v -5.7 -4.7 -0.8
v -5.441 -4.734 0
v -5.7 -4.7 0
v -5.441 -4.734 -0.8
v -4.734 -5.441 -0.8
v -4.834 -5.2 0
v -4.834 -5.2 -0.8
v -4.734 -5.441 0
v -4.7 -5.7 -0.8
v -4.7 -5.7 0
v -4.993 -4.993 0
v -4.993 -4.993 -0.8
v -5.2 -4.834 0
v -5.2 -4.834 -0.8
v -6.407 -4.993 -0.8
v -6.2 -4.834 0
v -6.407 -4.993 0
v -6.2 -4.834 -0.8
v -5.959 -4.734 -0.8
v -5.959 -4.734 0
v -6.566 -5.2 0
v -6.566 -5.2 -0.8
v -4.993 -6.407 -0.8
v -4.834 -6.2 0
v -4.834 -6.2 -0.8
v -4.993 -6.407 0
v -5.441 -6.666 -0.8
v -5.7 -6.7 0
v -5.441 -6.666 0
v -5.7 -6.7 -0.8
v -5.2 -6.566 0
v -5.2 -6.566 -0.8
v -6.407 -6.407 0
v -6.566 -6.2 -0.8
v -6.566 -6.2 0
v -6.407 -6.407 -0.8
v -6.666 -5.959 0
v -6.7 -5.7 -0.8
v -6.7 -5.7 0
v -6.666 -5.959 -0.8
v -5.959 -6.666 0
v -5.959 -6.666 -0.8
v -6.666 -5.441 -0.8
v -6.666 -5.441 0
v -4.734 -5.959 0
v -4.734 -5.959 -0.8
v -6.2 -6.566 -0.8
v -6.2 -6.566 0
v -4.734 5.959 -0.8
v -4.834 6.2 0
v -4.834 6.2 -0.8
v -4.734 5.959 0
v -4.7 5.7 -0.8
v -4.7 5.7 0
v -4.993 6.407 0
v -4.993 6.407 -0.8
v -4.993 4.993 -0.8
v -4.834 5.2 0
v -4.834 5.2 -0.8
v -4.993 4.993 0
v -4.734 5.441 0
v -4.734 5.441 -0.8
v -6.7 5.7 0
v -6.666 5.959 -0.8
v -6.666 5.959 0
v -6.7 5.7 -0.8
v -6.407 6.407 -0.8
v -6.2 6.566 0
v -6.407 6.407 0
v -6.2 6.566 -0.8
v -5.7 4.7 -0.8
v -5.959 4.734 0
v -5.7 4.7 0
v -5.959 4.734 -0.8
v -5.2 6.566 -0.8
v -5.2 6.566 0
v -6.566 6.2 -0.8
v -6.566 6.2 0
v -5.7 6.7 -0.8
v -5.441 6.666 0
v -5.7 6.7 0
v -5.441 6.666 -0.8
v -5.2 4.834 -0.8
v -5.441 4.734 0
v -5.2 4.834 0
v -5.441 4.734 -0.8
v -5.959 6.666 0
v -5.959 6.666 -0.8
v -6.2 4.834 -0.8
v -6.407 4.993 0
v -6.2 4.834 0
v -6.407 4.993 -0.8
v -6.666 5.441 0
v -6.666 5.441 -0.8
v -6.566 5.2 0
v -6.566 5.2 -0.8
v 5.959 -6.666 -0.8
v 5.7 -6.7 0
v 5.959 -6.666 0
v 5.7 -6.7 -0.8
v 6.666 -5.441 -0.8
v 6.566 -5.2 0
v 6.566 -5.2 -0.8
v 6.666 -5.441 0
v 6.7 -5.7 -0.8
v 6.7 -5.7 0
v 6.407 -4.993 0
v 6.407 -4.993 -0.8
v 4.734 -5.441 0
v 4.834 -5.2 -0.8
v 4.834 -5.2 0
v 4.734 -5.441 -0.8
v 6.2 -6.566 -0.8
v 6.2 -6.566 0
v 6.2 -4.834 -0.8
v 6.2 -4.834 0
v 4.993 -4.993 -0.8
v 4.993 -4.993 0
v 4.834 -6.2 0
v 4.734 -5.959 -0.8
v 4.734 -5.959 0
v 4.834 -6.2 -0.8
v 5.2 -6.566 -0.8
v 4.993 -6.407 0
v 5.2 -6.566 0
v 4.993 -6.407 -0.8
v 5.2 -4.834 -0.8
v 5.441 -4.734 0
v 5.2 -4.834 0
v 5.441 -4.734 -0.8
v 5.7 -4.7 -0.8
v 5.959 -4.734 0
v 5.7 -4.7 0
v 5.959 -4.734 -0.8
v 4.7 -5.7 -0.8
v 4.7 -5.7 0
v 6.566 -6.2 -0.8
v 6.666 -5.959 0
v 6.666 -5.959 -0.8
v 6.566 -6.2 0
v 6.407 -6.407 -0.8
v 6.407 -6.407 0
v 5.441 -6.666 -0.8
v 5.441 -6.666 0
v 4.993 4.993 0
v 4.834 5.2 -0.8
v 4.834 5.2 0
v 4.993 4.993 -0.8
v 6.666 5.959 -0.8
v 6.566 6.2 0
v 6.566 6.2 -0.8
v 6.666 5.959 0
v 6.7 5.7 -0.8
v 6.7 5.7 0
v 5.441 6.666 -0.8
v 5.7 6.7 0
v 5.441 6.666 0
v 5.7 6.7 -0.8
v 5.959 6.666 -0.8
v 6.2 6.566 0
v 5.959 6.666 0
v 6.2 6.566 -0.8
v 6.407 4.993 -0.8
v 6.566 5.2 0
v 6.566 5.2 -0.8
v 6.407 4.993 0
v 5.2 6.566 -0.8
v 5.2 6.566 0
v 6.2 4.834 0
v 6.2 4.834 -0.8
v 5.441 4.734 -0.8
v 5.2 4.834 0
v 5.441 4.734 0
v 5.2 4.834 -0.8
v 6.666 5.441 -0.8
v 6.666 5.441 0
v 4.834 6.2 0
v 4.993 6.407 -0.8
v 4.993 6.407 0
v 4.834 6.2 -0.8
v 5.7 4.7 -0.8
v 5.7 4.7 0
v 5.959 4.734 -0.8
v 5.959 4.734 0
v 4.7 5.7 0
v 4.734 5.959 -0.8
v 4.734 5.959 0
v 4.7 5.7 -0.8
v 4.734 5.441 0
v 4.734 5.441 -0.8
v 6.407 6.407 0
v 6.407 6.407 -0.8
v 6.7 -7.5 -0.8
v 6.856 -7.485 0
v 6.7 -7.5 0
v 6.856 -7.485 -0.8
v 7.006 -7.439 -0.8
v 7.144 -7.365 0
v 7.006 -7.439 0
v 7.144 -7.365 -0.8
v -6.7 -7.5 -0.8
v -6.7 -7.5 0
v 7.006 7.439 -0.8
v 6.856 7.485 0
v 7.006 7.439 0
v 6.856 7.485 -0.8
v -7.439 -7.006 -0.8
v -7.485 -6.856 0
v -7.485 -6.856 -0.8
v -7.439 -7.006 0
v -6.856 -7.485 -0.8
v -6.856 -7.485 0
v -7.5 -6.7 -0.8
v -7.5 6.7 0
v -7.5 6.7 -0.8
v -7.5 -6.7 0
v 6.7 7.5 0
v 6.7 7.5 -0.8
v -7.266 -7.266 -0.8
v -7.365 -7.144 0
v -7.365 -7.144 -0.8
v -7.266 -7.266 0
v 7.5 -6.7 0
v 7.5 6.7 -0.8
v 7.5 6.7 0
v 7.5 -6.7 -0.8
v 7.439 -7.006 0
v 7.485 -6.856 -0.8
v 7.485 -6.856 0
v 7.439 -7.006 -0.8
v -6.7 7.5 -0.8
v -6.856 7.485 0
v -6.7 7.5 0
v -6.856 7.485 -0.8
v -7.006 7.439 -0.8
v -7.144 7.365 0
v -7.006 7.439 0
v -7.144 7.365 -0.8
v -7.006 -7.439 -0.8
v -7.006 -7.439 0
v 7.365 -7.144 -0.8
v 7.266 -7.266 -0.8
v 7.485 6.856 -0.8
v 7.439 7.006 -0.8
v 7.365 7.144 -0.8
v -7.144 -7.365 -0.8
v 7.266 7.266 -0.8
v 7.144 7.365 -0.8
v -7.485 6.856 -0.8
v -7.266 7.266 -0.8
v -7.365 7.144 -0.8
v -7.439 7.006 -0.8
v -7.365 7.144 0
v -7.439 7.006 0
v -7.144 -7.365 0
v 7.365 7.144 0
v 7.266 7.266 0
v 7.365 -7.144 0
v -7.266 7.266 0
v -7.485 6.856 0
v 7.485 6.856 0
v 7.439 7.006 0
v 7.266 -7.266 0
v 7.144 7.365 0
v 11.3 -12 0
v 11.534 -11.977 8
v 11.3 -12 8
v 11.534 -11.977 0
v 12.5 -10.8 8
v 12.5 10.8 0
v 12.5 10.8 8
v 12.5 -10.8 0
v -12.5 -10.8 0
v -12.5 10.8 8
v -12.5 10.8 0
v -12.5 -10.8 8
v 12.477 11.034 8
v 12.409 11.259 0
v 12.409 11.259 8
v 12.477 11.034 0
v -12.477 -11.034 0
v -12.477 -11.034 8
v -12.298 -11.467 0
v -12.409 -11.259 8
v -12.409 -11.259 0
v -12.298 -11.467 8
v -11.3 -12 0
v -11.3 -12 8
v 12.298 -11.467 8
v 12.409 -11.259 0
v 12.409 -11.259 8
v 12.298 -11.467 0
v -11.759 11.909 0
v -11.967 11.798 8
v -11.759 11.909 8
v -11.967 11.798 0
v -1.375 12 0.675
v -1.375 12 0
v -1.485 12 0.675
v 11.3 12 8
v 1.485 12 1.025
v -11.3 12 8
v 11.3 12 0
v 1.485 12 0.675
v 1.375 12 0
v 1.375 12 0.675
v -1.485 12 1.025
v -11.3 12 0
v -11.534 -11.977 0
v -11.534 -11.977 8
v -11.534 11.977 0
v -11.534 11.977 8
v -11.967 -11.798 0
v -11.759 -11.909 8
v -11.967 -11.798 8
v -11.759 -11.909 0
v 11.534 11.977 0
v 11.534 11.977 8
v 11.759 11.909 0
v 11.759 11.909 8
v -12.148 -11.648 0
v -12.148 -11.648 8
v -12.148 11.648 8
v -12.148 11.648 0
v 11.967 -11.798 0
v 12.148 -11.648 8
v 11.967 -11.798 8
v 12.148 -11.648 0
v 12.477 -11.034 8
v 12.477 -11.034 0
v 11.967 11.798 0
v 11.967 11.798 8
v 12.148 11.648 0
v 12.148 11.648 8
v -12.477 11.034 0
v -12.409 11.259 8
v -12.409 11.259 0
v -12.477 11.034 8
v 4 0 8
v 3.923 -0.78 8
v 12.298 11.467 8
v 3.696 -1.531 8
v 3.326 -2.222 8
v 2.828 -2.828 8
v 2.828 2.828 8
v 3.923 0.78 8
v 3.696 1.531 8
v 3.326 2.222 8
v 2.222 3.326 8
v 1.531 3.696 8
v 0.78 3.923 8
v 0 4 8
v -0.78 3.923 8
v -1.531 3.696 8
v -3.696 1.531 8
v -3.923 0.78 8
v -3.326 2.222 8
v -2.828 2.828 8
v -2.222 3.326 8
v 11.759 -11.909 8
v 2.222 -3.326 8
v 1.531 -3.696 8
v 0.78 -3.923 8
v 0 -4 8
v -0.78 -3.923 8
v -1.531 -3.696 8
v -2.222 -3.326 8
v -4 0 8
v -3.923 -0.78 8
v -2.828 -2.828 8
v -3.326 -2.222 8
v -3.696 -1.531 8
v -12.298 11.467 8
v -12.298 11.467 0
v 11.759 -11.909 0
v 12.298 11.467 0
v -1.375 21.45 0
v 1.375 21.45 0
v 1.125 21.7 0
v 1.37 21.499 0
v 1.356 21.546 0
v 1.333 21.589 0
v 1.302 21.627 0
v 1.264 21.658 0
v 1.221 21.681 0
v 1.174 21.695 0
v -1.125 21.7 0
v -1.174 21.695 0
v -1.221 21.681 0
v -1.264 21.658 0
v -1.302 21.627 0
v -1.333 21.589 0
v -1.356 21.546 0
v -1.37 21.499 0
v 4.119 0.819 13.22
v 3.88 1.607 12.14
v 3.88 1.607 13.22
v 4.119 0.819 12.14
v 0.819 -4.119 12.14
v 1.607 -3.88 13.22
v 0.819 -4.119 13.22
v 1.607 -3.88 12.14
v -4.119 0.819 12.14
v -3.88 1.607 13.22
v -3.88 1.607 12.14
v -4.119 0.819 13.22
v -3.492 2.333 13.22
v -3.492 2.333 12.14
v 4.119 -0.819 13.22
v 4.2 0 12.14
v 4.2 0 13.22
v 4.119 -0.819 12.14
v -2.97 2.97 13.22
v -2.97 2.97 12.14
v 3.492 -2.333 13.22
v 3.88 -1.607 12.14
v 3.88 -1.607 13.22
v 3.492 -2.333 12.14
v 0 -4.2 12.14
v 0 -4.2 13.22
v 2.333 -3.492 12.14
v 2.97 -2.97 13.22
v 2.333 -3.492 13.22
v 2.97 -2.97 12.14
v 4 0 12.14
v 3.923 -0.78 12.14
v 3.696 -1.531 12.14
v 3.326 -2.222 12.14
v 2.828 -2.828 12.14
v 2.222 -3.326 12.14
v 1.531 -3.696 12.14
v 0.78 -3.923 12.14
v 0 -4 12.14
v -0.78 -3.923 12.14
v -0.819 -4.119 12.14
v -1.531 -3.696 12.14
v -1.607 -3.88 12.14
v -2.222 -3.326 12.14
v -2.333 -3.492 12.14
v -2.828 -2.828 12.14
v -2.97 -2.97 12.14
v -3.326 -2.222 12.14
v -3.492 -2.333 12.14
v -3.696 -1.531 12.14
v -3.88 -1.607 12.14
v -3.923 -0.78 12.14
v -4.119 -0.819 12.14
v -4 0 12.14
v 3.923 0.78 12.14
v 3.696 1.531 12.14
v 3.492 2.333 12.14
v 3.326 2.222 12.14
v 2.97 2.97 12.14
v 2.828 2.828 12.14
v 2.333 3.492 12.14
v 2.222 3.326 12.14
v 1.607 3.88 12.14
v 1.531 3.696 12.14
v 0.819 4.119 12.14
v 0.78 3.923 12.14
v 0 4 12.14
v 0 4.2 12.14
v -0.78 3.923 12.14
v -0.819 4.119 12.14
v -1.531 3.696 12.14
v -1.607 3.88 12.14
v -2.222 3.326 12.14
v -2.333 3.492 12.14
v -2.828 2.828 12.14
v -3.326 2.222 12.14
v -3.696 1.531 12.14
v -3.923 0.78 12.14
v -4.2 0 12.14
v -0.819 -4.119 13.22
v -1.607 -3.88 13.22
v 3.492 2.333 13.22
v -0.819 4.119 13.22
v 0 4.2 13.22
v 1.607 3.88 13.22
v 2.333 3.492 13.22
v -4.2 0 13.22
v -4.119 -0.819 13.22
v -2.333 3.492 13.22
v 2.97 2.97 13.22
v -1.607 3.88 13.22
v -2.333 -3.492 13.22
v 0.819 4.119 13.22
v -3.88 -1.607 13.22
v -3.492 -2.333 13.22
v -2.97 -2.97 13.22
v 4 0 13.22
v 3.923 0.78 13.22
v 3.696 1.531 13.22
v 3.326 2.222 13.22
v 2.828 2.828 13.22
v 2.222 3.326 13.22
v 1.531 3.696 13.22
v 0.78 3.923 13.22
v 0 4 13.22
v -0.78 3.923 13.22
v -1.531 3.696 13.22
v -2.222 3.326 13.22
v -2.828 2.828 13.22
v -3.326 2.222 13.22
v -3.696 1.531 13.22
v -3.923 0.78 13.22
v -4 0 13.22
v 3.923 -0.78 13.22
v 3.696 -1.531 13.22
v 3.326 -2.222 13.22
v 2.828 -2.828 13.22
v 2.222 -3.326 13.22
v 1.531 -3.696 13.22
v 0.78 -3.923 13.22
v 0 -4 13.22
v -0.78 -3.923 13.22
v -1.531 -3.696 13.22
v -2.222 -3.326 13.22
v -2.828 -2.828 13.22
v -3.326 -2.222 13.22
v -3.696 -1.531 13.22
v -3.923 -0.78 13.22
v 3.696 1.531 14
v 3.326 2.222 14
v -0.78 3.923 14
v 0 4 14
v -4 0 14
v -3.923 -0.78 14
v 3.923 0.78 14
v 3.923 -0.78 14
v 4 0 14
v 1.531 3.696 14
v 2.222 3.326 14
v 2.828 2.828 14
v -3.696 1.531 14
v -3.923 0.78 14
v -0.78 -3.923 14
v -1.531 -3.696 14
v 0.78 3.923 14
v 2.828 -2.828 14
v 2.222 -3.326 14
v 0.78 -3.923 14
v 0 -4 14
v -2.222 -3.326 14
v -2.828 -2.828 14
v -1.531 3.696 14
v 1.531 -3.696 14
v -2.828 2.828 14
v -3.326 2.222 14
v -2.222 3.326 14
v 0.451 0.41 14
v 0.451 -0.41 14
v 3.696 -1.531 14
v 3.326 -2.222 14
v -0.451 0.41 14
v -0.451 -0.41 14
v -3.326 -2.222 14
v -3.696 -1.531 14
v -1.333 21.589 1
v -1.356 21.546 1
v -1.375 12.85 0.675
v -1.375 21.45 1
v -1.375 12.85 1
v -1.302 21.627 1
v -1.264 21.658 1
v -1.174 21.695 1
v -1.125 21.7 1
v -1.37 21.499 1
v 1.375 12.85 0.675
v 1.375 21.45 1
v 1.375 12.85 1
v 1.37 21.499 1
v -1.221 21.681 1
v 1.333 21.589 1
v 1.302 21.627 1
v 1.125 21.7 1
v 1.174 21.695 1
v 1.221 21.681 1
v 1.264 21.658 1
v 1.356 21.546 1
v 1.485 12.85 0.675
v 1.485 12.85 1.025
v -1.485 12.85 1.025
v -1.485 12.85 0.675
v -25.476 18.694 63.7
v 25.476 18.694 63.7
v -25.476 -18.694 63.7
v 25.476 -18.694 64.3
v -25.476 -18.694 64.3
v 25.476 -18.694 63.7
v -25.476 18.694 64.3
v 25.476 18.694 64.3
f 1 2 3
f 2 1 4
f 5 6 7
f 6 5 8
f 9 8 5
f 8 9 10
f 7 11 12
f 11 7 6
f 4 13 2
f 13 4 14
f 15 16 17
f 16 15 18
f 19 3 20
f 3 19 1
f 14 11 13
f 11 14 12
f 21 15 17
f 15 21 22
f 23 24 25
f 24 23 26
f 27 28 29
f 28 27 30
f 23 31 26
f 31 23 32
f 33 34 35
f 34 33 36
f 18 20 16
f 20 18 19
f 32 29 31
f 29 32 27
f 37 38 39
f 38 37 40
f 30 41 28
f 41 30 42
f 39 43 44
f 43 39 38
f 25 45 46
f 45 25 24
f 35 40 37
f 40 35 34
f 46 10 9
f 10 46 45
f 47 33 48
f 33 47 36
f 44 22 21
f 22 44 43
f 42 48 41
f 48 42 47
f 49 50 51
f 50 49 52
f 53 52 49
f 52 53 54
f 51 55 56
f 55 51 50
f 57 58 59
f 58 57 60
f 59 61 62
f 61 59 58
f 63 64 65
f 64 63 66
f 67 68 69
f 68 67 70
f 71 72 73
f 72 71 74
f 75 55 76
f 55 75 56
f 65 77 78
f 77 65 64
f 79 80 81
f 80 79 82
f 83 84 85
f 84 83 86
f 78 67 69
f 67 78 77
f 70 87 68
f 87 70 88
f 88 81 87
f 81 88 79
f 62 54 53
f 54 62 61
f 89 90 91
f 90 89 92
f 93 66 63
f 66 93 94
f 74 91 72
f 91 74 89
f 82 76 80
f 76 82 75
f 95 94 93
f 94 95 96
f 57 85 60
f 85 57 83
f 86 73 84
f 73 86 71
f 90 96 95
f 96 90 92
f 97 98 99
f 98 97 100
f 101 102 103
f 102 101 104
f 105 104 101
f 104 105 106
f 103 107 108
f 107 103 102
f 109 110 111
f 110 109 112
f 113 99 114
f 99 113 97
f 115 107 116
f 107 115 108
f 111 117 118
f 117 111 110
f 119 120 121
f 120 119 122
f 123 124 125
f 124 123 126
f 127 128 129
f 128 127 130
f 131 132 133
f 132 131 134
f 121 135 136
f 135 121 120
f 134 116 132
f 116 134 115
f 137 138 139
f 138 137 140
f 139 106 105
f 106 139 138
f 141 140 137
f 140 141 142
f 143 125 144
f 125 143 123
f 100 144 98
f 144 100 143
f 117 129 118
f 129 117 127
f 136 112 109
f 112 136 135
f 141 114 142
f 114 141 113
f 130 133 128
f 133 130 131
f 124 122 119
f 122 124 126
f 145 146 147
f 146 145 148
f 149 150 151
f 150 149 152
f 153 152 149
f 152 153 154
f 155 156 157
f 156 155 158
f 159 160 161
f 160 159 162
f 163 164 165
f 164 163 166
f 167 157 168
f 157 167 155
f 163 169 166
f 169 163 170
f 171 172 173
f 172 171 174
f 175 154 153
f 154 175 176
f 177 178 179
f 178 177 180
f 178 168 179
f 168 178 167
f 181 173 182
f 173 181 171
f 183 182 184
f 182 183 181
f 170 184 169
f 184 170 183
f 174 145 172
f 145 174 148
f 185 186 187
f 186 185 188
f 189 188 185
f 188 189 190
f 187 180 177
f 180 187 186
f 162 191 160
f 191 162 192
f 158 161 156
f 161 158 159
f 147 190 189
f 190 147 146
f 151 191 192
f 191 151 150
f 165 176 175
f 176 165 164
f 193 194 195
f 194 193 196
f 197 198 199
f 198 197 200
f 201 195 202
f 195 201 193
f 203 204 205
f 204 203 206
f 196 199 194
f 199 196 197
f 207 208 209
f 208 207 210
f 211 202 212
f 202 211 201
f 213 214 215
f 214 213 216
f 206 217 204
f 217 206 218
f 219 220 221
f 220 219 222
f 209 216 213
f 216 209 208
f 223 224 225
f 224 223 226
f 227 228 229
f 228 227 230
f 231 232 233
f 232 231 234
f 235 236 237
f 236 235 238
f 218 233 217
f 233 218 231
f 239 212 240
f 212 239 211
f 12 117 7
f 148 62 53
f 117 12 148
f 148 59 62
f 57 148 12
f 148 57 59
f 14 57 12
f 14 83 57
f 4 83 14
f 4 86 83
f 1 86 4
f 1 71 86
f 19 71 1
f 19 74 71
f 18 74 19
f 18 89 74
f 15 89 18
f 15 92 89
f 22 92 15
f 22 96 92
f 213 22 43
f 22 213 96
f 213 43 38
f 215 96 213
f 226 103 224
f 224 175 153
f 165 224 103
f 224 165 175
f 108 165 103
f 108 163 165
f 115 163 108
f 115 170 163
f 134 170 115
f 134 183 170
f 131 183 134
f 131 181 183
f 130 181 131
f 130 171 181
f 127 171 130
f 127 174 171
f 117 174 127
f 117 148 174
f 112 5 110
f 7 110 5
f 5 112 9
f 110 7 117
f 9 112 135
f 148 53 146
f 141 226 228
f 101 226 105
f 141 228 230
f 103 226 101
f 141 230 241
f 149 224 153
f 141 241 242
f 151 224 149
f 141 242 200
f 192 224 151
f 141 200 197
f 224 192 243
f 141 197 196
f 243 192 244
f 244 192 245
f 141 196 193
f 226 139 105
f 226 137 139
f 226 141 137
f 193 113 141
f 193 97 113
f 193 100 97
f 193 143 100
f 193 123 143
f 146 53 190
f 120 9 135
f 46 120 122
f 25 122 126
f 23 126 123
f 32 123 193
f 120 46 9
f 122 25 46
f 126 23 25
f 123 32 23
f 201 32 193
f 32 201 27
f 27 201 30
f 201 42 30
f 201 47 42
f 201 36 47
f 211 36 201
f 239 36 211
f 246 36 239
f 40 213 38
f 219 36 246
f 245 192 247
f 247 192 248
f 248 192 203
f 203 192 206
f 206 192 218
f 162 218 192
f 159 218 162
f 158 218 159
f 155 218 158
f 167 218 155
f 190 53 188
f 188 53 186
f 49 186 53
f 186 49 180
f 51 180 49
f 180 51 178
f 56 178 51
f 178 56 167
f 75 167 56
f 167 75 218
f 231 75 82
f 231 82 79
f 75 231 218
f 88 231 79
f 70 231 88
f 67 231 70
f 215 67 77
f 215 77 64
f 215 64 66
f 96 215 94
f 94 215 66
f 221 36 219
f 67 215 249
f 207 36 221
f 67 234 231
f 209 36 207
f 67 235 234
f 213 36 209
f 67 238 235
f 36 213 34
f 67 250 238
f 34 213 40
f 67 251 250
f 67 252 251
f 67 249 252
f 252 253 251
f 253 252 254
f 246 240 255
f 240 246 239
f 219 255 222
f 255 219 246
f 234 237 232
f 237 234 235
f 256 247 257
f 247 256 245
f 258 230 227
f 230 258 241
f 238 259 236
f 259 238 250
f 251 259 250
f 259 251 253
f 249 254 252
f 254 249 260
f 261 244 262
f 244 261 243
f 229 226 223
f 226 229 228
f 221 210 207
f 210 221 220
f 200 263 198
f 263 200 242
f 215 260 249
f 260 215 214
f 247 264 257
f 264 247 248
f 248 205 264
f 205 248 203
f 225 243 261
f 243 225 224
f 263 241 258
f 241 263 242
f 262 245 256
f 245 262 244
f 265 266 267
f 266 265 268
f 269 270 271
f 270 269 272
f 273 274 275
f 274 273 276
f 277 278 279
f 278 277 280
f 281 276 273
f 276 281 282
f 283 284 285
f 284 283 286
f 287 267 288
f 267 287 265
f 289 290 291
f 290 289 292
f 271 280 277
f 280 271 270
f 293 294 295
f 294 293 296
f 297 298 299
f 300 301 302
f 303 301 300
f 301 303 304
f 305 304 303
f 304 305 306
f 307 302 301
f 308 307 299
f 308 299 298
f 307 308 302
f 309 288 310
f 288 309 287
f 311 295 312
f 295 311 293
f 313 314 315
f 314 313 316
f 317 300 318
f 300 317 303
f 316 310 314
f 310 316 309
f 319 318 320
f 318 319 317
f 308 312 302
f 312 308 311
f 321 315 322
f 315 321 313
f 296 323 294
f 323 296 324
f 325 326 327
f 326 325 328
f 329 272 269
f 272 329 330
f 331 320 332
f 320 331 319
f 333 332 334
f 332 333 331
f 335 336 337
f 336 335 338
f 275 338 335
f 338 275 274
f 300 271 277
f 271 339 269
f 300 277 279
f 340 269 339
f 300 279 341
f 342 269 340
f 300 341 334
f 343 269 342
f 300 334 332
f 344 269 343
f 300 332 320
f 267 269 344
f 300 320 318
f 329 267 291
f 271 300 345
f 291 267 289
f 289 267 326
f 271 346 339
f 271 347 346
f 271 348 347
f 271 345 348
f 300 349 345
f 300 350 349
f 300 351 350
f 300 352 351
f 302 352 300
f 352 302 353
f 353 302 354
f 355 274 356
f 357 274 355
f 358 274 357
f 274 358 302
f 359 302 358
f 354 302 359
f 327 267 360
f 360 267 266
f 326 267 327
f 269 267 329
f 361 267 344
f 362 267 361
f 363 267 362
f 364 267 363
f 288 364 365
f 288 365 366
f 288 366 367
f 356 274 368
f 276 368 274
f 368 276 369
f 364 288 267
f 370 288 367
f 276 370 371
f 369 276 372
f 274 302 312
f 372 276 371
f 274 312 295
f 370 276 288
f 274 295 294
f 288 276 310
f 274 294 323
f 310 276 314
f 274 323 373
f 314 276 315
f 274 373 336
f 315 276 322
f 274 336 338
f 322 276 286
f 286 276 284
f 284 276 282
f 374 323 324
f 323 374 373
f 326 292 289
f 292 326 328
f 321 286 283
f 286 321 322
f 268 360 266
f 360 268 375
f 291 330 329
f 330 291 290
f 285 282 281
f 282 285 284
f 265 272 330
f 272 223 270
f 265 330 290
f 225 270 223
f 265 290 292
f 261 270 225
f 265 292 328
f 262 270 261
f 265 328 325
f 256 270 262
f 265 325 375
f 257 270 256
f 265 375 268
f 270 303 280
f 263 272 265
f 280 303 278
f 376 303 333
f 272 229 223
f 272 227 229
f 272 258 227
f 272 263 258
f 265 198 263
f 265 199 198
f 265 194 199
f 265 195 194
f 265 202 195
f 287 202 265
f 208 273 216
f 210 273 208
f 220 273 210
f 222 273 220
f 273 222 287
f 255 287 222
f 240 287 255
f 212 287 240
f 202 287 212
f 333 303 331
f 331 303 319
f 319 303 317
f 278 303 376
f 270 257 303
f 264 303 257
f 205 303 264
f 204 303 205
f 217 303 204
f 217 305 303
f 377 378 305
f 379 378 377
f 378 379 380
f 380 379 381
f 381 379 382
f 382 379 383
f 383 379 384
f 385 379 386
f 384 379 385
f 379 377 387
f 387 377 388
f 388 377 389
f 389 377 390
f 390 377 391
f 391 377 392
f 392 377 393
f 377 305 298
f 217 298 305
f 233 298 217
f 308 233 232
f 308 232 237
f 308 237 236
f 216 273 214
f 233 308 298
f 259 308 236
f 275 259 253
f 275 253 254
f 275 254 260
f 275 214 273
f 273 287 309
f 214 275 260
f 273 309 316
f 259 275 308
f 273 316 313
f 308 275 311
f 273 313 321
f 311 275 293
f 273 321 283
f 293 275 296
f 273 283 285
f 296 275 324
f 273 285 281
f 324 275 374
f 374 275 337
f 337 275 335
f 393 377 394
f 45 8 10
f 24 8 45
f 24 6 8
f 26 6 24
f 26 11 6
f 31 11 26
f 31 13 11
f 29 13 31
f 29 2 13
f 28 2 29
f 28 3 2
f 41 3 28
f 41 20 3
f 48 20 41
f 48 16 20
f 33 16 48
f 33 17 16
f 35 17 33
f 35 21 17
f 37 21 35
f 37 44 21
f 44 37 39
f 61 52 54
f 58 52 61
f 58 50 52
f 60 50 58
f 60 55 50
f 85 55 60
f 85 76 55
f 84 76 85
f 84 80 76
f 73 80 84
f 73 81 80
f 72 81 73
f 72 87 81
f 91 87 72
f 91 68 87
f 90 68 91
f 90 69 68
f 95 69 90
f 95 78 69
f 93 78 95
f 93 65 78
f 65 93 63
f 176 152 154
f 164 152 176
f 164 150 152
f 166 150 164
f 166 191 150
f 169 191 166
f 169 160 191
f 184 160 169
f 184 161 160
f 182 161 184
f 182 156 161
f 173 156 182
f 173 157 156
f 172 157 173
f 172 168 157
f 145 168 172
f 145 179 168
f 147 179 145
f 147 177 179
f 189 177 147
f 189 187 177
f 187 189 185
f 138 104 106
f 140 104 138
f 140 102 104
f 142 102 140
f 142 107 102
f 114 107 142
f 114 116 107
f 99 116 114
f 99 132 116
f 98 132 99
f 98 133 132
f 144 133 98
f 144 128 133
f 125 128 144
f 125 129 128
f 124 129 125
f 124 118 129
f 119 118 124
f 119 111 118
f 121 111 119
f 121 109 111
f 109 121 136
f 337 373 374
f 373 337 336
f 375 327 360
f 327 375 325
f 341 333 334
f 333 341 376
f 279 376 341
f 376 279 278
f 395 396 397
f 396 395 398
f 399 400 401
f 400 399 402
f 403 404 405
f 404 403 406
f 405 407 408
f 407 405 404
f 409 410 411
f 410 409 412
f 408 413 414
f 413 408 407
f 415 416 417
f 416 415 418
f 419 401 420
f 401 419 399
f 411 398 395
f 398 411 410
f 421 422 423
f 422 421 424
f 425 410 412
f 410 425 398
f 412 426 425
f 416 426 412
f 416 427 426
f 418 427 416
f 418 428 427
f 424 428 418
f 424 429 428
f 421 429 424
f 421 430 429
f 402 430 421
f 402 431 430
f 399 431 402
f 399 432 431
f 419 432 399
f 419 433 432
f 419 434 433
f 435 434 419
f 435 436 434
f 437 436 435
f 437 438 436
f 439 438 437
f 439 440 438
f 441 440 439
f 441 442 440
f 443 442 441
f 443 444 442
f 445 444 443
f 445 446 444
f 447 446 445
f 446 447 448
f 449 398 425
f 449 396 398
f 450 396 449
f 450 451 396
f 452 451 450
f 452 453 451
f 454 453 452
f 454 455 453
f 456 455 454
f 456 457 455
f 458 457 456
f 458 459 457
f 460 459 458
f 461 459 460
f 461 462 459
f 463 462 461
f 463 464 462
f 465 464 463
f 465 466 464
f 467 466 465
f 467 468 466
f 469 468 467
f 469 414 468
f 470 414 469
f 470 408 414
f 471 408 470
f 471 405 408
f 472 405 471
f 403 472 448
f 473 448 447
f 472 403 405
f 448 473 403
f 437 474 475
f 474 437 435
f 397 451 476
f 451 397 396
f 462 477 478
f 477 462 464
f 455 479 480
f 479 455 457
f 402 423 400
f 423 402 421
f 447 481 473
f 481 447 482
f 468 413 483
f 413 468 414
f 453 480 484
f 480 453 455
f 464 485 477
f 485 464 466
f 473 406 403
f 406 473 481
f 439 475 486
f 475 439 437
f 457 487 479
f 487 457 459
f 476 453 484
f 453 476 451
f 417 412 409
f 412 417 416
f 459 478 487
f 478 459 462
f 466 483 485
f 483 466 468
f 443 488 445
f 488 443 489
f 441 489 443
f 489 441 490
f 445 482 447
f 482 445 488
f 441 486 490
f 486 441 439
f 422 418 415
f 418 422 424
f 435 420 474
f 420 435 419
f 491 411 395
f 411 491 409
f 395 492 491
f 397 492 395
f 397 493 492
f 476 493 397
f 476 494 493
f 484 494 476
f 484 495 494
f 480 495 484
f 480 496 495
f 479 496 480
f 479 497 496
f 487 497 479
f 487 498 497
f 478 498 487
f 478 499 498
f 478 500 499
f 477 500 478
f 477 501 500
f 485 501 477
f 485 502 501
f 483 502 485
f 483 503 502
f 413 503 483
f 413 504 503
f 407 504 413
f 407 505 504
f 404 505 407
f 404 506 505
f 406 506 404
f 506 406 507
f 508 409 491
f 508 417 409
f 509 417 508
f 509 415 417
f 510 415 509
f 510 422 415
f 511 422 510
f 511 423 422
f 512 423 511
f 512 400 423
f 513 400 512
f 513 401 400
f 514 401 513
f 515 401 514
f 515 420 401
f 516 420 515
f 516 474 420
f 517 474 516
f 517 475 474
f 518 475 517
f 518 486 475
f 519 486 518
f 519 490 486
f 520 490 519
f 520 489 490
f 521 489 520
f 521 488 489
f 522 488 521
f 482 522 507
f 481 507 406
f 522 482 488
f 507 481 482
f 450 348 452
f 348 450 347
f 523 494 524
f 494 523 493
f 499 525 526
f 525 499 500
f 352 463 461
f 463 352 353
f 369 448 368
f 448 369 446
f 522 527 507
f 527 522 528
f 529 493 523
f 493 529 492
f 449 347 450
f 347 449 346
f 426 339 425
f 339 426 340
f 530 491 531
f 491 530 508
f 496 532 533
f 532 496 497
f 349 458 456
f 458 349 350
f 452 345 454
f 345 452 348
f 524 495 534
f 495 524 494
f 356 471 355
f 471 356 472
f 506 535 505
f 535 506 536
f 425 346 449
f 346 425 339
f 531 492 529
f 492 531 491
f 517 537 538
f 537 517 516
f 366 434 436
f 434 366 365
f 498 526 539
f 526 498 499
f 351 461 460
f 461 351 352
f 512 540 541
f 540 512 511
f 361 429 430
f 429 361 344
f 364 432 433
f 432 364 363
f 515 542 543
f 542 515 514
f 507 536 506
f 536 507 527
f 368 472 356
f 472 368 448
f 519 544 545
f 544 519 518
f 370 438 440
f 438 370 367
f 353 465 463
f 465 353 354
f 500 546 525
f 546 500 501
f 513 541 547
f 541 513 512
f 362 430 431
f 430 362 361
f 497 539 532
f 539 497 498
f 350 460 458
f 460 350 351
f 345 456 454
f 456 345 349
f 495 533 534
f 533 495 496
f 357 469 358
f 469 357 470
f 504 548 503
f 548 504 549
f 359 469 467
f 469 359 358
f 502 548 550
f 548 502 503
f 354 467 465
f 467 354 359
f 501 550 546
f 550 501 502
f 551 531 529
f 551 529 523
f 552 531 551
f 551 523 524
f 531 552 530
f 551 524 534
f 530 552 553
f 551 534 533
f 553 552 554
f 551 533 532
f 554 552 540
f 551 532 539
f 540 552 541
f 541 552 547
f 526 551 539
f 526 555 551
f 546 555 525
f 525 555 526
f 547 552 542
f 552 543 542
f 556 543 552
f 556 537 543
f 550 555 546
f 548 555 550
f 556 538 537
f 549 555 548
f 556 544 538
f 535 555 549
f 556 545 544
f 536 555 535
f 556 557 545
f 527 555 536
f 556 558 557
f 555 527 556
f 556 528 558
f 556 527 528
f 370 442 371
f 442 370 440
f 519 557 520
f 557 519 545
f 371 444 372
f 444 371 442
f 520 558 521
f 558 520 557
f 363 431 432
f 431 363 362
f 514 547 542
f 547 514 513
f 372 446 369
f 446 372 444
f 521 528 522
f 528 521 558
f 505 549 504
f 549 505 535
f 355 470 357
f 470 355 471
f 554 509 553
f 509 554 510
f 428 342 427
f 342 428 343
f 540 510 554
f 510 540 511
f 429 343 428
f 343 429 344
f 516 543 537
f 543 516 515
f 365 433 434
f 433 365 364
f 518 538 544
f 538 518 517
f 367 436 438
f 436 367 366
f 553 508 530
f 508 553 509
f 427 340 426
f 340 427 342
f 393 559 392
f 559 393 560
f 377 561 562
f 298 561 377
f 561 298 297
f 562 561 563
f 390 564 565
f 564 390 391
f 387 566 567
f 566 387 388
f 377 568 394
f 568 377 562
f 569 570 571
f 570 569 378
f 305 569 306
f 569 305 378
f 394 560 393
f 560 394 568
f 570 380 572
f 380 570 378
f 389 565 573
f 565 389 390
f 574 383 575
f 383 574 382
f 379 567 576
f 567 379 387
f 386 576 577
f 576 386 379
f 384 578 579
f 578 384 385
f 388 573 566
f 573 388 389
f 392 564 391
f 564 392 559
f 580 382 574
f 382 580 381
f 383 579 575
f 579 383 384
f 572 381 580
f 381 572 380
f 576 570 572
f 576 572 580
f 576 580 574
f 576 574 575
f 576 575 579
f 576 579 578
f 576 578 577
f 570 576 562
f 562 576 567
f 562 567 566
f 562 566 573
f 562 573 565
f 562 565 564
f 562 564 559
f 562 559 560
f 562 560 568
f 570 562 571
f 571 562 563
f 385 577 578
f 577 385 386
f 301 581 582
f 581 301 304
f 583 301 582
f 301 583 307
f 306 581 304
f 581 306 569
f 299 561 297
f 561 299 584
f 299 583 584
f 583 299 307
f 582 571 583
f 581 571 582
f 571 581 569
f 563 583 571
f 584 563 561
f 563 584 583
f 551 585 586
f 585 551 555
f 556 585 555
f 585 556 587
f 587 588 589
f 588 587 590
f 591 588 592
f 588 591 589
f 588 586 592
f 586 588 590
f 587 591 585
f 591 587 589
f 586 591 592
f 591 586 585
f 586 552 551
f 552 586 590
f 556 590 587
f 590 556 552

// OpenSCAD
// Parameters (mm)
primary_dimension = 15; //[7.5:30:0.5]
fov_horizontal_deg = 54; //[27:108:1]
fov_vertical_deg = 41; //[20:82:1]
fov_distance_mm = 50; //[25:100:1]
ribbon_connector_length_mm = 15; //[7.5:30:0.5]
ribbon_connector_width_mm = 2.2; //[1.1:4.4:0.1]
ribbon_connector_thickness_mm = 1; //[0.5:2:0.1]
pcb_thickness_mm = 1.6; //[0.8:3.2:0.1]
body_length_mm = 25; //[12.5:50:0.5]
body_width_mm = 24; //[12:48:0.5]
body_height_mm = 8; //[4:16:0.5]
lens_diameter_mm = 8; //[4:16:0.5]
lens_height_mm = 6; //[3:12:0.5]
connector_offset_from_lens_mm = 10; //[5:20:0.5]
eps_overlap_mm = 0.8; //[0.5:2:0.1]
frustum_thickness_mm = 0.6; //[0.3:1.2:0.1]

// Quality
$fn=32;

// Derived (keep expressions aligned with plan intent)
scale_pd = (primary_dimension/15);

pcb_x = primary_dimension;
pcb_y = primary_dimension;
pcb_z = pcb_thickness_mm;

body_x = body_length_mm*scale_pd;
body_y = body_width_mm*scale_pd;
body_z = body_height_mm*scale_pd;

lens_r = (lens_diameter_mm*scale_pd)/2;
lens_h = lens_height_mm*scale_pd;

z_pcb_top = pcb_thickness_mm/2;
z_body_center = (pcb_thickness_mm/2) + (body_z)/2 - eps_overlap_mm;
z_body_top = (pcb_thickness_mm/2) + (body_z) - eps_overlap_mm;

z_lens_center = (pcb_thickness_mm/2) + (body_z) + (lens_h)/2 - eps_overlap_mm;
z_lens_top = (pcb_thickness_mm/2) + (body_z) + (lens_h) - eps_overlap_mm;

pad_x = ribbon_connector_width_mm*1.6;
pad_y = ribbon_connector_length_mm*0.35;
pad_z = pcb_thickness_mm*0.25;

pad_pos = [
  0,
  (primary_dimension/2) - (pad_y)/2 - eps_overlap_mm,
  (pcb_thickness_mm/2) - (pad_z)/2 + eps_overlap_mm
];

fpc_x = ribbon_connector_width_mm;
fpc_y = ribbon_connector_length_mm;
fpc_z = ribbon_connector_thickness_mm;

fpc_pos = [
  0,
  (primary_dimension/2) + (fpc_y)/2 - eps_overlap_mm,
  (pcb_thickness_mm/2) + (fpc_z)/2 - eps_overlap_mm
];

fov_near_pos = [0, 0, z_lens_top];
fov_far_pos  = [0, 0, z_lens_top + fov_distance_mm];

fov_far_x = 2*fov_distance_mm*tan(fov_horizontal_deg/2);
fov_far_y = 2*fov_distance_mm*tan(fov_vertical_deg/2);

// ---------- Helpers ----------
module rounded_box_2d(w, h, r) {
  r2 = min(r, min(w, h)/2);
  offset(r=r2) square([w-2*r2, h-2*r2], center=true);
}

module rounded_box_3d(size=[10,10,10], r=1, center=true) {
  // Rounded via 2D offset + linear_extrude (fast, no minkowski)
  w = size[0]; h = size[1]; z = size[2];
  translate([0,0, center ? -z/2 : 0])
    linear_extrude(height=z)
      rounded_box_2d(w, h, r);
}

module screw_hole(d=2, h=5) {
  cylinder(d=d, h=h, center=true, $fn=24);
}

// ---------- Base shapes from plan ----------
module pcb_shape() {
  color([0.0, 0.4, 0.2])  // PCB green
    translate([0,0,0])
      rounded_box_3d([pcb_x, pcb_y, pcb_z], r=0.8, center=true);
}

module camera_body_shape() {
  // Detailed camera body: main housing + top boss + small side features
  color([0.12, 0.12, 0.14]) {
    translate([0,0,z_body_center]) {
      // Main housing with slight rounding
      rounded_box_3d([body_x, body_y, body_z], r=1.2*scale_pd, center=true);

      // Small "sensor can" bump under lens (on top face)
      translate([0,0, body_z/2 - 0.6*scale_pd])
        cylinder(d= min(body_x, body_y)*0.35, h=1.2*scale_pd, center=true, $fn=32);

      // Side connector/IC lump (visual detail)
      translate([body_x*0.22, -body_y*0.18, -body_z*0.05])
        rounded_box_3d([body_x*0.22, body_y*0.18, body_z*0.35], r=0.6*scale_pd, center=true);
    }
  }
}

module lens_shape() {
  // Detailed lens: barrel + front ring + slight taper + "glass"
  translate([0,0,z_lens_center]) {
    // Barrel
    color([0.08, 0.08, 0.09])
      union() {
        cylinder(r=lens_r, h=lens_h, center=true, $fn=32);

        // Front ring
        translate([0,0, lens_h*0.28])
          difference() {
            cylinder(r=lens_r*1.05, h=lens_h*0.18, center=true, $fn=32);
            cylinder(r=lens_r*0.82, h=lens_h*0.22, center=true, $fn=32);
          }

        // Rear taper into body
        translate([0,0, -lens_h*0.30])
          cylinder(r1=lens_r*0.92, r2=lens_r*0.78, h=lens_h*0.22, center=true, $fn=32);
      }

    // Glass element
    color([0.25, 0.35, 0.45, 0.55])
      translate([0,0, lens_h*0.36])
        cylinder(r=lens_r*0.72, h=max(0.6*scale_pd, lens_h*0.12), center=true, $fn=32);
  }
}

module connector_pad_area_shape() {
  // Gold pads on PCB
  color([0.8, 0.6, 0.2])
    translate(pad_pos)
      cube([pad_x, pad_y, pad_z], center=true);
}

module ribbon_connector_shape() {
  // FPC connector: plastic body + latch + pins hint
  translate(fpc_pos) {
    // Main plastic
    color([0.92, 0.92, 0.92])
      rounded_box_3d([fpc_x*1.25, fpc_y, fpc_z], r=0.25, center=true);

    // Latch bar
    color([0.75, 0.75, 0.78])
      translate([0, -fpc_y*0.18, fpc_z*0.35])
        cube([fpc_x*1.35, fpc_y*0.18, fpc_z*0.35], center=true);

    // Pin hint (thin metallic strip)
    color([0.65, 0.55, 0.35])
      translate([0, -fpc_y*0.35, -fpc_z*0.15])
        cube([fpc_x*0.95, fpc_y*0.12, max(0.15, fpc_z*0.25)], center=true);
  }
}

module fov_near_shape() {
  translate(fov_near_pos)
    cube([frustum_thickness_mm, frustum_thickness_mm, frustum_thickness_mm], center=true);
}

module fov_far_shape() {
  translate(fov_far_pos)
    cube([fov_far_x, fov_far_y, frustum_thickness_mm], center=true);
}

// ---------- Operations from plan ----------
module fov_frustum() {
  // Visualized frustum as thin solid
  color([0.2, 0.6, 1.0, 0.25])
    hull() {
      fov_near_shape();
      fov_far_shape();
    }
}

// [MANDATORY] Camera module (detailed, self-contained)
module camera() {
  // Union(camera_body, lens)
  union() {
    camera_body_shape();
    lens_shape();
  }
}

// [MANDATORY] Mod module (detailed, self-contained)
module mod() {
  union() {
    // PCB with mounting holes (detail) while keeping plan geometry intact
    difference() {
      pcb_shape();

      // Corner mounting holes (visual detail; typical small camera PCB)
      hole_d = 2.0*scale_pd;
      hole_off = primary_dimension*0.38;
      for (sx=[-1,1], sy=[-1,1])
        translate([sx*hole_off, sy*hole_off, 0])
          screw_hole(d=hole_d, h=pcb_thickness_mm+2);
    }

    // Camera (attached on top of PCB per plan)
    camera();

    // Connector pad area + connector
    connector_pad_area_shape();
    ribbon_connector_shape();

    // FOV frustum
    fov_frustum();
  }
}

// [MANDATORY] Assembly: PRIMARY at origin, SECONDARY attached (mod includes camera already)
module assembly() {
  // PRIMARY component at origin: camera module representation is part of mod,
  // but we keep the full requested assembly as the complete module at origin.
  mod();
}

assembly();
